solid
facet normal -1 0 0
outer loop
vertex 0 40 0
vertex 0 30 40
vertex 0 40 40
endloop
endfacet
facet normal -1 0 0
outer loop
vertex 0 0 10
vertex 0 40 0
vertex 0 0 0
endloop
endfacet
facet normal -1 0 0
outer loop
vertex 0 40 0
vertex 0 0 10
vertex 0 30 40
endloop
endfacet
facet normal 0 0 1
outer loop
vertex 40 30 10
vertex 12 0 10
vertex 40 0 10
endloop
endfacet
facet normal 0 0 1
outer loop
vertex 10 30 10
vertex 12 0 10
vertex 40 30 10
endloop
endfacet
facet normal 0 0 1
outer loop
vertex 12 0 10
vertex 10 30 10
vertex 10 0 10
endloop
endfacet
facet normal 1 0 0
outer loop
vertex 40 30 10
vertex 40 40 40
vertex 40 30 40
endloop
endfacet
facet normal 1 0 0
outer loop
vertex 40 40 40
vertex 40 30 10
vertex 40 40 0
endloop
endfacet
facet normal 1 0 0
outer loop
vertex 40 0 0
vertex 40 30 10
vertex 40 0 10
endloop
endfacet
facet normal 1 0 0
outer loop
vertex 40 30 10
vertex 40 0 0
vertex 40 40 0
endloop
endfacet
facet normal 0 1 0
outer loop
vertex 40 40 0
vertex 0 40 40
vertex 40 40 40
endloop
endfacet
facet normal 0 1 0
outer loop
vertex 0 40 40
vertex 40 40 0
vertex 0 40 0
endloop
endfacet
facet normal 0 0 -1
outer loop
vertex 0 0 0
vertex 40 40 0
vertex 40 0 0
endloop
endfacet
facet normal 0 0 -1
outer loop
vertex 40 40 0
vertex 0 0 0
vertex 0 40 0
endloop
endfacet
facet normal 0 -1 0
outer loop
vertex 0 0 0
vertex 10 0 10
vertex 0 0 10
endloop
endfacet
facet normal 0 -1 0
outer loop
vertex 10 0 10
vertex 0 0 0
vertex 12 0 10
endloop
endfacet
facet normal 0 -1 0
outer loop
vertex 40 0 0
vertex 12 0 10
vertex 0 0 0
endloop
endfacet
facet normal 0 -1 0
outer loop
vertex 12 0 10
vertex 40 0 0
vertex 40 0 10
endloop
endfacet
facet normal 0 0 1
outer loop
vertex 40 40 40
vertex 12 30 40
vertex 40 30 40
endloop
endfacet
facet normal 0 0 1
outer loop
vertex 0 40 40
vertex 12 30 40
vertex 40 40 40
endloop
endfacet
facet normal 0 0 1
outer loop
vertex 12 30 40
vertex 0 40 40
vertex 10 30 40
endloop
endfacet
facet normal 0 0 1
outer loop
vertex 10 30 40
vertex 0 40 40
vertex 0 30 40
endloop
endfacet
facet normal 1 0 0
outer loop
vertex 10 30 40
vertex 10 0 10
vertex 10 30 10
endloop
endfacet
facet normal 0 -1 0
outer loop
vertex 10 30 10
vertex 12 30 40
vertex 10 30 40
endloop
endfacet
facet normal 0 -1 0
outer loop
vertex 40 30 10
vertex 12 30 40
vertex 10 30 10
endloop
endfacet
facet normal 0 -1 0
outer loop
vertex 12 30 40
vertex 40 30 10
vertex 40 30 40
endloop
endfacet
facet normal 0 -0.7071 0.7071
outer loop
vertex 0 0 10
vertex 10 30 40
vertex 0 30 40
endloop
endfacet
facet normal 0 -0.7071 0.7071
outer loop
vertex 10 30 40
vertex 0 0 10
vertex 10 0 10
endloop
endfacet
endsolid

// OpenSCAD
difference(){
union(){
// base
cube([40,40,10]);
// panel lateral
cube([10,40,40]);
// panel fondo
translate([0,30,10])
cube([40,10,30]);
}
translate([0,0,10])
rotate([45,0,0])
cube([12,43,30]);
}
